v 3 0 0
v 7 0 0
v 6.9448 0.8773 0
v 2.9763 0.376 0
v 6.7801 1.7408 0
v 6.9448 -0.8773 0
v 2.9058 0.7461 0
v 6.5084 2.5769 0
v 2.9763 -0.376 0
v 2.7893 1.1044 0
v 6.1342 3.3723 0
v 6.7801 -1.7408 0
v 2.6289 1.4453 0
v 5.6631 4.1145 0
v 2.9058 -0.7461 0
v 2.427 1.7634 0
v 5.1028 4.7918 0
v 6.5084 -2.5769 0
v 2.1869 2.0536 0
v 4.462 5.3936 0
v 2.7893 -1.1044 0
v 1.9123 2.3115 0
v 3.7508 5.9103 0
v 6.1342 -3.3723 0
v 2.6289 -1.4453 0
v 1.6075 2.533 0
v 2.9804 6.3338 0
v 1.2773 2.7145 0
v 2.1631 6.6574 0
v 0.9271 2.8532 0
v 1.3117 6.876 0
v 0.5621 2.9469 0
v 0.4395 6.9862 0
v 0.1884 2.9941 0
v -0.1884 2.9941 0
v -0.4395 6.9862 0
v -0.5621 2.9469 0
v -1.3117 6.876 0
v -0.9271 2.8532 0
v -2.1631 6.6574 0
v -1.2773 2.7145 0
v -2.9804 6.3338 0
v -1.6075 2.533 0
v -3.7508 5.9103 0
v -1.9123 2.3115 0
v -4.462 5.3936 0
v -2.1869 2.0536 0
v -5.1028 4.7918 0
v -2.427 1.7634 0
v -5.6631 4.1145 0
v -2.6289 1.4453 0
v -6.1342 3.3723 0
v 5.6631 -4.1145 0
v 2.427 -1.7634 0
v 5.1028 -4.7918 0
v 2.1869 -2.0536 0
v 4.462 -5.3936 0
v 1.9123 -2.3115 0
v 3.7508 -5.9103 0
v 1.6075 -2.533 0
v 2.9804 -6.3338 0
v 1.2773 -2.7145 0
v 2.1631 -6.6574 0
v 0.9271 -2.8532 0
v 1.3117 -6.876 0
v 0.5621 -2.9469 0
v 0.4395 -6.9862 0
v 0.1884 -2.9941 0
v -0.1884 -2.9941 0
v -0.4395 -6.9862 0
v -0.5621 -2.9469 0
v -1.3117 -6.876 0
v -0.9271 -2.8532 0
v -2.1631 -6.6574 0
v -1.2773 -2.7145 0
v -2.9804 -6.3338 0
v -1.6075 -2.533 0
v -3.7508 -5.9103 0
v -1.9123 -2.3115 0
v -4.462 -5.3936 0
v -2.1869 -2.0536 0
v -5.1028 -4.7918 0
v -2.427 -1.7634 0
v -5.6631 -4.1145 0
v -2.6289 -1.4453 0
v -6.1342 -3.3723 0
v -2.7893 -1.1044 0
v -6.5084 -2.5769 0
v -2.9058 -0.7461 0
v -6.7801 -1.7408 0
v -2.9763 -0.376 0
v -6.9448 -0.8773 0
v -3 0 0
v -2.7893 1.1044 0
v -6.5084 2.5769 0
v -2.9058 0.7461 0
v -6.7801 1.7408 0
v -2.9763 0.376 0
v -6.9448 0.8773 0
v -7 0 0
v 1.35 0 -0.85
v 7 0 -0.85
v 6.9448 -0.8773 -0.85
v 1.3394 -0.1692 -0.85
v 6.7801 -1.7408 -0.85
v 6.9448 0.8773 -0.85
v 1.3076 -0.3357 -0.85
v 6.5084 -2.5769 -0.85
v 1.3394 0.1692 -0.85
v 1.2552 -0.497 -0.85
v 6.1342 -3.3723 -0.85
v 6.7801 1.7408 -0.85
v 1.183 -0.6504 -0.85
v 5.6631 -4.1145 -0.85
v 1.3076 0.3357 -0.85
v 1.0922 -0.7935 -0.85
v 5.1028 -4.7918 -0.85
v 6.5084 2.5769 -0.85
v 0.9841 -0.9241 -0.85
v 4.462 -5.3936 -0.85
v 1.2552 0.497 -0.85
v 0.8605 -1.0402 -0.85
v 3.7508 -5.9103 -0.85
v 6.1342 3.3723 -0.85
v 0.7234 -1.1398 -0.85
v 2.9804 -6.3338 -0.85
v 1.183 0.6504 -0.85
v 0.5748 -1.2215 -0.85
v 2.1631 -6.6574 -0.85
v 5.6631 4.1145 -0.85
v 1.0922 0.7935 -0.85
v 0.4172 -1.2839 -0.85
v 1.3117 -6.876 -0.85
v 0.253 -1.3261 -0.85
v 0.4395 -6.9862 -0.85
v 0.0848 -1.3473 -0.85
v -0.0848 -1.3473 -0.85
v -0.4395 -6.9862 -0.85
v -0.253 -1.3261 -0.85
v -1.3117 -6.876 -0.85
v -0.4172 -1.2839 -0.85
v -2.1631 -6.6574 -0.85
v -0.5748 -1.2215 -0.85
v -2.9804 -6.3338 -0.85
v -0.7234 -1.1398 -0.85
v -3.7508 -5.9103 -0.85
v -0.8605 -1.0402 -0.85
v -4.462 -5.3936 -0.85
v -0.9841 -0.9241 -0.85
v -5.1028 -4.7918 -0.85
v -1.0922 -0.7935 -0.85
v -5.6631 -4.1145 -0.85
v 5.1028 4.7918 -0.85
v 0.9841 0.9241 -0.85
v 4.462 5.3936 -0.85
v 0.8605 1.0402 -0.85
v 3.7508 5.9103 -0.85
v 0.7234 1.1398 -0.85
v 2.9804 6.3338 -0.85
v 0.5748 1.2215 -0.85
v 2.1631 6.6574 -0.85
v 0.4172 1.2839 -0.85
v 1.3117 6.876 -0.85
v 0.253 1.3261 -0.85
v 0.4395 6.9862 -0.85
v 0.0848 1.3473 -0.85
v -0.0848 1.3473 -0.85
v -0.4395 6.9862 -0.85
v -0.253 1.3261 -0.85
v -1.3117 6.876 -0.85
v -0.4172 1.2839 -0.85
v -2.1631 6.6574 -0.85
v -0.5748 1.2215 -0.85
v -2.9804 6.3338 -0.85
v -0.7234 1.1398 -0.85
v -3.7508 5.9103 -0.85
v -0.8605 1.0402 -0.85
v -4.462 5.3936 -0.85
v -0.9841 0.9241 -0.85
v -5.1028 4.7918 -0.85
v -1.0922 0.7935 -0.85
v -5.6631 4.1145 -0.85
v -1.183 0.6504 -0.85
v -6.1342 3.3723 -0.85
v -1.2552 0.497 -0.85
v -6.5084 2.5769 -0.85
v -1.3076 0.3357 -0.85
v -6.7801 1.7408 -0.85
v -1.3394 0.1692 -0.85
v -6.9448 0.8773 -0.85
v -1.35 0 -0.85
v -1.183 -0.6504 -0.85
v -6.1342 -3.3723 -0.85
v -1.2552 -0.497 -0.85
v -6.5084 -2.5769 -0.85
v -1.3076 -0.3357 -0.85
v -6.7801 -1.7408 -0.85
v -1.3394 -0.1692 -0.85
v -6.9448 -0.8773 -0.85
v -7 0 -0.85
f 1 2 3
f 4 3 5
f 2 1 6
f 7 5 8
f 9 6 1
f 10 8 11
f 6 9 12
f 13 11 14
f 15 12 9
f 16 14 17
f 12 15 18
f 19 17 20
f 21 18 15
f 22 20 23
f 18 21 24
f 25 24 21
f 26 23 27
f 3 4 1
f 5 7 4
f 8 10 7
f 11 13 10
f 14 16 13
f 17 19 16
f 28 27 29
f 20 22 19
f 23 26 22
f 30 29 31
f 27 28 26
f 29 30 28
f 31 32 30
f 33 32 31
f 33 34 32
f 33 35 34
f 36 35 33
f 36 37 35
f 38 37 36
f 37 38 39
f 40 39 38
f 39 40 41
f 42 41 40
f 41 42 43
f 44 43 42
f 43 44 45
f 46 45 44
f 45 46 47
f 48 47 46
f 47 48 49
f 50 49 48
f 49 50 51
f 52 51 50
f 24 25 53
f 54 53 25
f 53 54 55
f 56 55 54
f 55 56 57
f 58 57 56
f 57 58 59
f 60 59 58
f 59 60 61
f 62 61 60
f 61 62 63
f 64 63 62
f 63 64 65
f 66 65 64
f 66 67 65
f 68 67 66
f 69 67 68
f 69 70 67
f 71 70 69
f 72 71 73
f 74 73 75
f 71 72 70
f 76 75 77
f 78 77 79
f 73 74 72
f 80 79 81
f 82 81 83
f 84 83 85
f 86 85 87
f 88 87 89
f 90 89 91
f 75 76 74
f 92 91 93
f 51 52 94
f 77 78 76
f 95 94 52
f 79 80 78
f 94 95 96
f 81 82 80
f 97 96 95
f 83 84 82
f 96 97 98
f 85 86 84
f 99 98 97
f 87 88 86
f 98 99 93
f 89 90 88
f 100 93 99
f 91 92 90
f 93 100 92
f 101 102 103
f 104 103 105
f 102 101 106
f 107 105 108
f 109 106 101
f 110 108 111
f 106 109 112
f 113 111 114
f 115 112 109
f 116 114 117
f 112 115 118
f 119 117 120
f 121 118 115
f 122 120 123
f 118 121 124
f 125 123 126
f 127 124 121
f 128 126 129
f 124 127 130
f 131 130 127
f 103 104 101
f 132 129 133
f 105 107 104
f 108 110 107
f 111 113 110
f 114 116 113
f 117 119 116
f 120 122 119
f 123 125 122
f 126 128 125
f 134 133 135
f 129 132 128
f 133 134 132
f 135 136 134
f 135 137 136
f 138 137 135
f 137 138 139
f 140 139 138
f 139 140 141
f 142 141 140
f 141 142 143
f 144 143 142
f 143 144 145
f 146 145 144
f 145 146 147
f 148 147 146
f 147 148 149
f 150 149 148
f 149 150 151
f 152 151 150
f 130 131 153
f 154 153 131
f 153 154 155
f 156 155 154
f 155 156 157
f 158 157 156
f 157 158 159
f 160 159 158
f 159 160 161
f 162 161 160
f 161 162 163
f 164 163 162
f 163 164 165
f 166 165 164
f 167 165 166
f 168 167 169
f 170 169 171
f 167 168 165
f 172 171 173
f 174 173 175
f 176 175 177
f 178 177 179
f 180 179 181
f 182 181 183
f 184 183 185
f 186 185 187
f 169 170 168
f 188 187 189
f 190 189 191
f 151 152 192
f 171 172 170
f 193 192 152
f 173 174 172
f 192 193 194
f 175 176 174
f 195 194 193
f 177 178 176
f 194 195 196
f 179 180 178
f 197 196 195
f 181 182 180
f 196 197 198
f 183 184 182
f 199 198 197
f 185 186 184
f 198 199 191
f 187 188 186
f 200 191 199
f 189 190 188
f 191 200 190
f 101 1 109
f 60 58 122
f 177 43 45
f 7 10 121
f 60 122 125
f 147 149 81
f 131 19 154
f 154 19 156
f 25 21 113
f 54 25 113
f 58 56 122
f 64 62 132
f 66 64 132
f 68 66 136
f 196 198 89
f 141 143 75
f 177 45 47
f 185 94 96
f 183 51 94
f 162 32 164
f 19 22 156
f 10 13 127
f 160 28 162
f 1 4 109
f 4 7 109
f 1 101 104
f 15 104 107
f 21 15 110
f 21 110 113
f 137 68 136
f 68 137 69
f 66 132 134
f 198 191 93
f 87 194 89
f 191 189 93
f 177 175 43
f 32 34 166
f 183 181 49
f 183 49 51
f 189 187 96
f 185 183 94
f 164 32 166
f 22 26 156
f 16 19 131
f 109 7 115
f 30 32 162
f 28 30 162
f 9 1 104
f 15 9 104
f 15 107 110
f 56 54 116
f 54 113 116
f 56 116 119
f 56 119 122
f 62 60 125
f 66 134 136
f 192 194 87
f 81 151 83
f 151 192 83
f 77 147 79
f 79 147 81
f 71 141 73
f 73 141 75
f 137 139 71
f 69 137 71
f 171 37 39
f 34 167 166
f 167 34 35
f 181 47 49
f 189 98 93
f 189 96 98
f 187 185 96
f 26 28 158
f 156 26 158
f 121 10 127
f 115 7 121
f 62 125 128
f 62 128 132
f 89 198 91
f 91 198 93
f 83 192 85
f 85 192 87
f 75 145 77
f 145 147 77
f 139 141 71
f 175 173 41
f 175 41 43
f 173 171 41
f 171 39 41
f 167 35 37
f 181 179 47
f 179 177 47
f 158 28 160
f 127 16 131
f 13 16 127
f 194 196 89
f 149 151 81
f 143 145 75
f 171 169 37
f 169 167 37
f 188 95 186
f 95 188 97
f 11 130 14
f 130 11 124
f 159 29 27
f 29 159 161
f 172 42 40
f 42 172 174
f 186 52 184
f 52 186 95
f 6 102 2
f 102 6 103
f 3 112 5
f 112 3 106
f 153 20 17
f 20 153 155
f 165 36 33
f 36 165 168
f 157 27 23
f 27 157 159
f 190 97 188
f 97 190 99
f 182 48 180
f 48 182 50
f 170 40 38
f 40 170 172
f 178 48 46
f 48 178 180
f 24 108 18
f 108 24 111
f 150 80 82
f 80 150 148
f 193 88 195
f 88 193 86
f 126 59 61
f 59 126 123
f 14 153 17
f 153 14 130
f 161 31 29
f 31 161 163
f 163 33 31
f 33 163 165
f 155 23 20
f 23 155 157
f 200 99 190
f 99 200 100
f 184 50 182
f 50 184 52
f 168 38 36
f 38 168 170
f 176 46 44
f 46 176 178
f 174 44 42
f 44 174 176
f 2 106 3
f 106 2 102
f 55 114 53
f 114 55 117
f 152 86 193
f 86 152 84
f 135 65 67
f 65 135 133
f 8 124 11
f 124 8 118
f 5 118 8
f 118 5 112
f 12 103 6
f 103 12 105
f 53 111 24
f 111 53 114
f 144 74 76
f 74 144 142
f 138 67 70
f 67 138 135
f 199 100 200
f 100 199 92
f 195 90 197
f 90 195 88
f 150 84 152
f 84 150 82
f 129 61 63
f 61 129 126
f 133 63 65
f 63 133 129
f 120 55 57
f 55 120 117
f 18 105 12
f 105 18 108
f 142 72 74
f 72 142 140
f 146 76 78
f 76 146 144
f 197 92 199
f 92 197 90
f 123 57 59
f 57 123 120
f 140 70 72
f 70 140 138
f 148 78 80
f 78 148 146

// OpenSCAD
$fn = 50;


difference() {
	union() {
		translate(v = [0, 0, -0.8500000000]) {
			cylinder(h = 0.8500000000, r = 7.0000000000);
		}
	}
	union() {
		translate(v = [0, 0, 0]) {
			rotate(a = [0, 0, 0]) {
				difference() {
					union() {
						translate(v = [0, 0, -0.8500000000]) {
							cylinder(h = 0.8500000000, r = 1.0000000000);
						}
						translate(v = [0, 0, -0.8500000000]) {
							cylinder(h = 0.8500000000, r1 = 1.3500000000, r2 = 3.0000000000);
						}
						translate(v = [0, 0, -0.8500000000]) {
							cylinder(h = 0.8500000000, r = 1.3500000000);
						}
						translate(v = [0, 0, -0.8500000000]) {
							cylinder(h = 0.8500000000, r = 1.0000000000);
						}
					}
					union();
				}
			}
		}
	}
}
